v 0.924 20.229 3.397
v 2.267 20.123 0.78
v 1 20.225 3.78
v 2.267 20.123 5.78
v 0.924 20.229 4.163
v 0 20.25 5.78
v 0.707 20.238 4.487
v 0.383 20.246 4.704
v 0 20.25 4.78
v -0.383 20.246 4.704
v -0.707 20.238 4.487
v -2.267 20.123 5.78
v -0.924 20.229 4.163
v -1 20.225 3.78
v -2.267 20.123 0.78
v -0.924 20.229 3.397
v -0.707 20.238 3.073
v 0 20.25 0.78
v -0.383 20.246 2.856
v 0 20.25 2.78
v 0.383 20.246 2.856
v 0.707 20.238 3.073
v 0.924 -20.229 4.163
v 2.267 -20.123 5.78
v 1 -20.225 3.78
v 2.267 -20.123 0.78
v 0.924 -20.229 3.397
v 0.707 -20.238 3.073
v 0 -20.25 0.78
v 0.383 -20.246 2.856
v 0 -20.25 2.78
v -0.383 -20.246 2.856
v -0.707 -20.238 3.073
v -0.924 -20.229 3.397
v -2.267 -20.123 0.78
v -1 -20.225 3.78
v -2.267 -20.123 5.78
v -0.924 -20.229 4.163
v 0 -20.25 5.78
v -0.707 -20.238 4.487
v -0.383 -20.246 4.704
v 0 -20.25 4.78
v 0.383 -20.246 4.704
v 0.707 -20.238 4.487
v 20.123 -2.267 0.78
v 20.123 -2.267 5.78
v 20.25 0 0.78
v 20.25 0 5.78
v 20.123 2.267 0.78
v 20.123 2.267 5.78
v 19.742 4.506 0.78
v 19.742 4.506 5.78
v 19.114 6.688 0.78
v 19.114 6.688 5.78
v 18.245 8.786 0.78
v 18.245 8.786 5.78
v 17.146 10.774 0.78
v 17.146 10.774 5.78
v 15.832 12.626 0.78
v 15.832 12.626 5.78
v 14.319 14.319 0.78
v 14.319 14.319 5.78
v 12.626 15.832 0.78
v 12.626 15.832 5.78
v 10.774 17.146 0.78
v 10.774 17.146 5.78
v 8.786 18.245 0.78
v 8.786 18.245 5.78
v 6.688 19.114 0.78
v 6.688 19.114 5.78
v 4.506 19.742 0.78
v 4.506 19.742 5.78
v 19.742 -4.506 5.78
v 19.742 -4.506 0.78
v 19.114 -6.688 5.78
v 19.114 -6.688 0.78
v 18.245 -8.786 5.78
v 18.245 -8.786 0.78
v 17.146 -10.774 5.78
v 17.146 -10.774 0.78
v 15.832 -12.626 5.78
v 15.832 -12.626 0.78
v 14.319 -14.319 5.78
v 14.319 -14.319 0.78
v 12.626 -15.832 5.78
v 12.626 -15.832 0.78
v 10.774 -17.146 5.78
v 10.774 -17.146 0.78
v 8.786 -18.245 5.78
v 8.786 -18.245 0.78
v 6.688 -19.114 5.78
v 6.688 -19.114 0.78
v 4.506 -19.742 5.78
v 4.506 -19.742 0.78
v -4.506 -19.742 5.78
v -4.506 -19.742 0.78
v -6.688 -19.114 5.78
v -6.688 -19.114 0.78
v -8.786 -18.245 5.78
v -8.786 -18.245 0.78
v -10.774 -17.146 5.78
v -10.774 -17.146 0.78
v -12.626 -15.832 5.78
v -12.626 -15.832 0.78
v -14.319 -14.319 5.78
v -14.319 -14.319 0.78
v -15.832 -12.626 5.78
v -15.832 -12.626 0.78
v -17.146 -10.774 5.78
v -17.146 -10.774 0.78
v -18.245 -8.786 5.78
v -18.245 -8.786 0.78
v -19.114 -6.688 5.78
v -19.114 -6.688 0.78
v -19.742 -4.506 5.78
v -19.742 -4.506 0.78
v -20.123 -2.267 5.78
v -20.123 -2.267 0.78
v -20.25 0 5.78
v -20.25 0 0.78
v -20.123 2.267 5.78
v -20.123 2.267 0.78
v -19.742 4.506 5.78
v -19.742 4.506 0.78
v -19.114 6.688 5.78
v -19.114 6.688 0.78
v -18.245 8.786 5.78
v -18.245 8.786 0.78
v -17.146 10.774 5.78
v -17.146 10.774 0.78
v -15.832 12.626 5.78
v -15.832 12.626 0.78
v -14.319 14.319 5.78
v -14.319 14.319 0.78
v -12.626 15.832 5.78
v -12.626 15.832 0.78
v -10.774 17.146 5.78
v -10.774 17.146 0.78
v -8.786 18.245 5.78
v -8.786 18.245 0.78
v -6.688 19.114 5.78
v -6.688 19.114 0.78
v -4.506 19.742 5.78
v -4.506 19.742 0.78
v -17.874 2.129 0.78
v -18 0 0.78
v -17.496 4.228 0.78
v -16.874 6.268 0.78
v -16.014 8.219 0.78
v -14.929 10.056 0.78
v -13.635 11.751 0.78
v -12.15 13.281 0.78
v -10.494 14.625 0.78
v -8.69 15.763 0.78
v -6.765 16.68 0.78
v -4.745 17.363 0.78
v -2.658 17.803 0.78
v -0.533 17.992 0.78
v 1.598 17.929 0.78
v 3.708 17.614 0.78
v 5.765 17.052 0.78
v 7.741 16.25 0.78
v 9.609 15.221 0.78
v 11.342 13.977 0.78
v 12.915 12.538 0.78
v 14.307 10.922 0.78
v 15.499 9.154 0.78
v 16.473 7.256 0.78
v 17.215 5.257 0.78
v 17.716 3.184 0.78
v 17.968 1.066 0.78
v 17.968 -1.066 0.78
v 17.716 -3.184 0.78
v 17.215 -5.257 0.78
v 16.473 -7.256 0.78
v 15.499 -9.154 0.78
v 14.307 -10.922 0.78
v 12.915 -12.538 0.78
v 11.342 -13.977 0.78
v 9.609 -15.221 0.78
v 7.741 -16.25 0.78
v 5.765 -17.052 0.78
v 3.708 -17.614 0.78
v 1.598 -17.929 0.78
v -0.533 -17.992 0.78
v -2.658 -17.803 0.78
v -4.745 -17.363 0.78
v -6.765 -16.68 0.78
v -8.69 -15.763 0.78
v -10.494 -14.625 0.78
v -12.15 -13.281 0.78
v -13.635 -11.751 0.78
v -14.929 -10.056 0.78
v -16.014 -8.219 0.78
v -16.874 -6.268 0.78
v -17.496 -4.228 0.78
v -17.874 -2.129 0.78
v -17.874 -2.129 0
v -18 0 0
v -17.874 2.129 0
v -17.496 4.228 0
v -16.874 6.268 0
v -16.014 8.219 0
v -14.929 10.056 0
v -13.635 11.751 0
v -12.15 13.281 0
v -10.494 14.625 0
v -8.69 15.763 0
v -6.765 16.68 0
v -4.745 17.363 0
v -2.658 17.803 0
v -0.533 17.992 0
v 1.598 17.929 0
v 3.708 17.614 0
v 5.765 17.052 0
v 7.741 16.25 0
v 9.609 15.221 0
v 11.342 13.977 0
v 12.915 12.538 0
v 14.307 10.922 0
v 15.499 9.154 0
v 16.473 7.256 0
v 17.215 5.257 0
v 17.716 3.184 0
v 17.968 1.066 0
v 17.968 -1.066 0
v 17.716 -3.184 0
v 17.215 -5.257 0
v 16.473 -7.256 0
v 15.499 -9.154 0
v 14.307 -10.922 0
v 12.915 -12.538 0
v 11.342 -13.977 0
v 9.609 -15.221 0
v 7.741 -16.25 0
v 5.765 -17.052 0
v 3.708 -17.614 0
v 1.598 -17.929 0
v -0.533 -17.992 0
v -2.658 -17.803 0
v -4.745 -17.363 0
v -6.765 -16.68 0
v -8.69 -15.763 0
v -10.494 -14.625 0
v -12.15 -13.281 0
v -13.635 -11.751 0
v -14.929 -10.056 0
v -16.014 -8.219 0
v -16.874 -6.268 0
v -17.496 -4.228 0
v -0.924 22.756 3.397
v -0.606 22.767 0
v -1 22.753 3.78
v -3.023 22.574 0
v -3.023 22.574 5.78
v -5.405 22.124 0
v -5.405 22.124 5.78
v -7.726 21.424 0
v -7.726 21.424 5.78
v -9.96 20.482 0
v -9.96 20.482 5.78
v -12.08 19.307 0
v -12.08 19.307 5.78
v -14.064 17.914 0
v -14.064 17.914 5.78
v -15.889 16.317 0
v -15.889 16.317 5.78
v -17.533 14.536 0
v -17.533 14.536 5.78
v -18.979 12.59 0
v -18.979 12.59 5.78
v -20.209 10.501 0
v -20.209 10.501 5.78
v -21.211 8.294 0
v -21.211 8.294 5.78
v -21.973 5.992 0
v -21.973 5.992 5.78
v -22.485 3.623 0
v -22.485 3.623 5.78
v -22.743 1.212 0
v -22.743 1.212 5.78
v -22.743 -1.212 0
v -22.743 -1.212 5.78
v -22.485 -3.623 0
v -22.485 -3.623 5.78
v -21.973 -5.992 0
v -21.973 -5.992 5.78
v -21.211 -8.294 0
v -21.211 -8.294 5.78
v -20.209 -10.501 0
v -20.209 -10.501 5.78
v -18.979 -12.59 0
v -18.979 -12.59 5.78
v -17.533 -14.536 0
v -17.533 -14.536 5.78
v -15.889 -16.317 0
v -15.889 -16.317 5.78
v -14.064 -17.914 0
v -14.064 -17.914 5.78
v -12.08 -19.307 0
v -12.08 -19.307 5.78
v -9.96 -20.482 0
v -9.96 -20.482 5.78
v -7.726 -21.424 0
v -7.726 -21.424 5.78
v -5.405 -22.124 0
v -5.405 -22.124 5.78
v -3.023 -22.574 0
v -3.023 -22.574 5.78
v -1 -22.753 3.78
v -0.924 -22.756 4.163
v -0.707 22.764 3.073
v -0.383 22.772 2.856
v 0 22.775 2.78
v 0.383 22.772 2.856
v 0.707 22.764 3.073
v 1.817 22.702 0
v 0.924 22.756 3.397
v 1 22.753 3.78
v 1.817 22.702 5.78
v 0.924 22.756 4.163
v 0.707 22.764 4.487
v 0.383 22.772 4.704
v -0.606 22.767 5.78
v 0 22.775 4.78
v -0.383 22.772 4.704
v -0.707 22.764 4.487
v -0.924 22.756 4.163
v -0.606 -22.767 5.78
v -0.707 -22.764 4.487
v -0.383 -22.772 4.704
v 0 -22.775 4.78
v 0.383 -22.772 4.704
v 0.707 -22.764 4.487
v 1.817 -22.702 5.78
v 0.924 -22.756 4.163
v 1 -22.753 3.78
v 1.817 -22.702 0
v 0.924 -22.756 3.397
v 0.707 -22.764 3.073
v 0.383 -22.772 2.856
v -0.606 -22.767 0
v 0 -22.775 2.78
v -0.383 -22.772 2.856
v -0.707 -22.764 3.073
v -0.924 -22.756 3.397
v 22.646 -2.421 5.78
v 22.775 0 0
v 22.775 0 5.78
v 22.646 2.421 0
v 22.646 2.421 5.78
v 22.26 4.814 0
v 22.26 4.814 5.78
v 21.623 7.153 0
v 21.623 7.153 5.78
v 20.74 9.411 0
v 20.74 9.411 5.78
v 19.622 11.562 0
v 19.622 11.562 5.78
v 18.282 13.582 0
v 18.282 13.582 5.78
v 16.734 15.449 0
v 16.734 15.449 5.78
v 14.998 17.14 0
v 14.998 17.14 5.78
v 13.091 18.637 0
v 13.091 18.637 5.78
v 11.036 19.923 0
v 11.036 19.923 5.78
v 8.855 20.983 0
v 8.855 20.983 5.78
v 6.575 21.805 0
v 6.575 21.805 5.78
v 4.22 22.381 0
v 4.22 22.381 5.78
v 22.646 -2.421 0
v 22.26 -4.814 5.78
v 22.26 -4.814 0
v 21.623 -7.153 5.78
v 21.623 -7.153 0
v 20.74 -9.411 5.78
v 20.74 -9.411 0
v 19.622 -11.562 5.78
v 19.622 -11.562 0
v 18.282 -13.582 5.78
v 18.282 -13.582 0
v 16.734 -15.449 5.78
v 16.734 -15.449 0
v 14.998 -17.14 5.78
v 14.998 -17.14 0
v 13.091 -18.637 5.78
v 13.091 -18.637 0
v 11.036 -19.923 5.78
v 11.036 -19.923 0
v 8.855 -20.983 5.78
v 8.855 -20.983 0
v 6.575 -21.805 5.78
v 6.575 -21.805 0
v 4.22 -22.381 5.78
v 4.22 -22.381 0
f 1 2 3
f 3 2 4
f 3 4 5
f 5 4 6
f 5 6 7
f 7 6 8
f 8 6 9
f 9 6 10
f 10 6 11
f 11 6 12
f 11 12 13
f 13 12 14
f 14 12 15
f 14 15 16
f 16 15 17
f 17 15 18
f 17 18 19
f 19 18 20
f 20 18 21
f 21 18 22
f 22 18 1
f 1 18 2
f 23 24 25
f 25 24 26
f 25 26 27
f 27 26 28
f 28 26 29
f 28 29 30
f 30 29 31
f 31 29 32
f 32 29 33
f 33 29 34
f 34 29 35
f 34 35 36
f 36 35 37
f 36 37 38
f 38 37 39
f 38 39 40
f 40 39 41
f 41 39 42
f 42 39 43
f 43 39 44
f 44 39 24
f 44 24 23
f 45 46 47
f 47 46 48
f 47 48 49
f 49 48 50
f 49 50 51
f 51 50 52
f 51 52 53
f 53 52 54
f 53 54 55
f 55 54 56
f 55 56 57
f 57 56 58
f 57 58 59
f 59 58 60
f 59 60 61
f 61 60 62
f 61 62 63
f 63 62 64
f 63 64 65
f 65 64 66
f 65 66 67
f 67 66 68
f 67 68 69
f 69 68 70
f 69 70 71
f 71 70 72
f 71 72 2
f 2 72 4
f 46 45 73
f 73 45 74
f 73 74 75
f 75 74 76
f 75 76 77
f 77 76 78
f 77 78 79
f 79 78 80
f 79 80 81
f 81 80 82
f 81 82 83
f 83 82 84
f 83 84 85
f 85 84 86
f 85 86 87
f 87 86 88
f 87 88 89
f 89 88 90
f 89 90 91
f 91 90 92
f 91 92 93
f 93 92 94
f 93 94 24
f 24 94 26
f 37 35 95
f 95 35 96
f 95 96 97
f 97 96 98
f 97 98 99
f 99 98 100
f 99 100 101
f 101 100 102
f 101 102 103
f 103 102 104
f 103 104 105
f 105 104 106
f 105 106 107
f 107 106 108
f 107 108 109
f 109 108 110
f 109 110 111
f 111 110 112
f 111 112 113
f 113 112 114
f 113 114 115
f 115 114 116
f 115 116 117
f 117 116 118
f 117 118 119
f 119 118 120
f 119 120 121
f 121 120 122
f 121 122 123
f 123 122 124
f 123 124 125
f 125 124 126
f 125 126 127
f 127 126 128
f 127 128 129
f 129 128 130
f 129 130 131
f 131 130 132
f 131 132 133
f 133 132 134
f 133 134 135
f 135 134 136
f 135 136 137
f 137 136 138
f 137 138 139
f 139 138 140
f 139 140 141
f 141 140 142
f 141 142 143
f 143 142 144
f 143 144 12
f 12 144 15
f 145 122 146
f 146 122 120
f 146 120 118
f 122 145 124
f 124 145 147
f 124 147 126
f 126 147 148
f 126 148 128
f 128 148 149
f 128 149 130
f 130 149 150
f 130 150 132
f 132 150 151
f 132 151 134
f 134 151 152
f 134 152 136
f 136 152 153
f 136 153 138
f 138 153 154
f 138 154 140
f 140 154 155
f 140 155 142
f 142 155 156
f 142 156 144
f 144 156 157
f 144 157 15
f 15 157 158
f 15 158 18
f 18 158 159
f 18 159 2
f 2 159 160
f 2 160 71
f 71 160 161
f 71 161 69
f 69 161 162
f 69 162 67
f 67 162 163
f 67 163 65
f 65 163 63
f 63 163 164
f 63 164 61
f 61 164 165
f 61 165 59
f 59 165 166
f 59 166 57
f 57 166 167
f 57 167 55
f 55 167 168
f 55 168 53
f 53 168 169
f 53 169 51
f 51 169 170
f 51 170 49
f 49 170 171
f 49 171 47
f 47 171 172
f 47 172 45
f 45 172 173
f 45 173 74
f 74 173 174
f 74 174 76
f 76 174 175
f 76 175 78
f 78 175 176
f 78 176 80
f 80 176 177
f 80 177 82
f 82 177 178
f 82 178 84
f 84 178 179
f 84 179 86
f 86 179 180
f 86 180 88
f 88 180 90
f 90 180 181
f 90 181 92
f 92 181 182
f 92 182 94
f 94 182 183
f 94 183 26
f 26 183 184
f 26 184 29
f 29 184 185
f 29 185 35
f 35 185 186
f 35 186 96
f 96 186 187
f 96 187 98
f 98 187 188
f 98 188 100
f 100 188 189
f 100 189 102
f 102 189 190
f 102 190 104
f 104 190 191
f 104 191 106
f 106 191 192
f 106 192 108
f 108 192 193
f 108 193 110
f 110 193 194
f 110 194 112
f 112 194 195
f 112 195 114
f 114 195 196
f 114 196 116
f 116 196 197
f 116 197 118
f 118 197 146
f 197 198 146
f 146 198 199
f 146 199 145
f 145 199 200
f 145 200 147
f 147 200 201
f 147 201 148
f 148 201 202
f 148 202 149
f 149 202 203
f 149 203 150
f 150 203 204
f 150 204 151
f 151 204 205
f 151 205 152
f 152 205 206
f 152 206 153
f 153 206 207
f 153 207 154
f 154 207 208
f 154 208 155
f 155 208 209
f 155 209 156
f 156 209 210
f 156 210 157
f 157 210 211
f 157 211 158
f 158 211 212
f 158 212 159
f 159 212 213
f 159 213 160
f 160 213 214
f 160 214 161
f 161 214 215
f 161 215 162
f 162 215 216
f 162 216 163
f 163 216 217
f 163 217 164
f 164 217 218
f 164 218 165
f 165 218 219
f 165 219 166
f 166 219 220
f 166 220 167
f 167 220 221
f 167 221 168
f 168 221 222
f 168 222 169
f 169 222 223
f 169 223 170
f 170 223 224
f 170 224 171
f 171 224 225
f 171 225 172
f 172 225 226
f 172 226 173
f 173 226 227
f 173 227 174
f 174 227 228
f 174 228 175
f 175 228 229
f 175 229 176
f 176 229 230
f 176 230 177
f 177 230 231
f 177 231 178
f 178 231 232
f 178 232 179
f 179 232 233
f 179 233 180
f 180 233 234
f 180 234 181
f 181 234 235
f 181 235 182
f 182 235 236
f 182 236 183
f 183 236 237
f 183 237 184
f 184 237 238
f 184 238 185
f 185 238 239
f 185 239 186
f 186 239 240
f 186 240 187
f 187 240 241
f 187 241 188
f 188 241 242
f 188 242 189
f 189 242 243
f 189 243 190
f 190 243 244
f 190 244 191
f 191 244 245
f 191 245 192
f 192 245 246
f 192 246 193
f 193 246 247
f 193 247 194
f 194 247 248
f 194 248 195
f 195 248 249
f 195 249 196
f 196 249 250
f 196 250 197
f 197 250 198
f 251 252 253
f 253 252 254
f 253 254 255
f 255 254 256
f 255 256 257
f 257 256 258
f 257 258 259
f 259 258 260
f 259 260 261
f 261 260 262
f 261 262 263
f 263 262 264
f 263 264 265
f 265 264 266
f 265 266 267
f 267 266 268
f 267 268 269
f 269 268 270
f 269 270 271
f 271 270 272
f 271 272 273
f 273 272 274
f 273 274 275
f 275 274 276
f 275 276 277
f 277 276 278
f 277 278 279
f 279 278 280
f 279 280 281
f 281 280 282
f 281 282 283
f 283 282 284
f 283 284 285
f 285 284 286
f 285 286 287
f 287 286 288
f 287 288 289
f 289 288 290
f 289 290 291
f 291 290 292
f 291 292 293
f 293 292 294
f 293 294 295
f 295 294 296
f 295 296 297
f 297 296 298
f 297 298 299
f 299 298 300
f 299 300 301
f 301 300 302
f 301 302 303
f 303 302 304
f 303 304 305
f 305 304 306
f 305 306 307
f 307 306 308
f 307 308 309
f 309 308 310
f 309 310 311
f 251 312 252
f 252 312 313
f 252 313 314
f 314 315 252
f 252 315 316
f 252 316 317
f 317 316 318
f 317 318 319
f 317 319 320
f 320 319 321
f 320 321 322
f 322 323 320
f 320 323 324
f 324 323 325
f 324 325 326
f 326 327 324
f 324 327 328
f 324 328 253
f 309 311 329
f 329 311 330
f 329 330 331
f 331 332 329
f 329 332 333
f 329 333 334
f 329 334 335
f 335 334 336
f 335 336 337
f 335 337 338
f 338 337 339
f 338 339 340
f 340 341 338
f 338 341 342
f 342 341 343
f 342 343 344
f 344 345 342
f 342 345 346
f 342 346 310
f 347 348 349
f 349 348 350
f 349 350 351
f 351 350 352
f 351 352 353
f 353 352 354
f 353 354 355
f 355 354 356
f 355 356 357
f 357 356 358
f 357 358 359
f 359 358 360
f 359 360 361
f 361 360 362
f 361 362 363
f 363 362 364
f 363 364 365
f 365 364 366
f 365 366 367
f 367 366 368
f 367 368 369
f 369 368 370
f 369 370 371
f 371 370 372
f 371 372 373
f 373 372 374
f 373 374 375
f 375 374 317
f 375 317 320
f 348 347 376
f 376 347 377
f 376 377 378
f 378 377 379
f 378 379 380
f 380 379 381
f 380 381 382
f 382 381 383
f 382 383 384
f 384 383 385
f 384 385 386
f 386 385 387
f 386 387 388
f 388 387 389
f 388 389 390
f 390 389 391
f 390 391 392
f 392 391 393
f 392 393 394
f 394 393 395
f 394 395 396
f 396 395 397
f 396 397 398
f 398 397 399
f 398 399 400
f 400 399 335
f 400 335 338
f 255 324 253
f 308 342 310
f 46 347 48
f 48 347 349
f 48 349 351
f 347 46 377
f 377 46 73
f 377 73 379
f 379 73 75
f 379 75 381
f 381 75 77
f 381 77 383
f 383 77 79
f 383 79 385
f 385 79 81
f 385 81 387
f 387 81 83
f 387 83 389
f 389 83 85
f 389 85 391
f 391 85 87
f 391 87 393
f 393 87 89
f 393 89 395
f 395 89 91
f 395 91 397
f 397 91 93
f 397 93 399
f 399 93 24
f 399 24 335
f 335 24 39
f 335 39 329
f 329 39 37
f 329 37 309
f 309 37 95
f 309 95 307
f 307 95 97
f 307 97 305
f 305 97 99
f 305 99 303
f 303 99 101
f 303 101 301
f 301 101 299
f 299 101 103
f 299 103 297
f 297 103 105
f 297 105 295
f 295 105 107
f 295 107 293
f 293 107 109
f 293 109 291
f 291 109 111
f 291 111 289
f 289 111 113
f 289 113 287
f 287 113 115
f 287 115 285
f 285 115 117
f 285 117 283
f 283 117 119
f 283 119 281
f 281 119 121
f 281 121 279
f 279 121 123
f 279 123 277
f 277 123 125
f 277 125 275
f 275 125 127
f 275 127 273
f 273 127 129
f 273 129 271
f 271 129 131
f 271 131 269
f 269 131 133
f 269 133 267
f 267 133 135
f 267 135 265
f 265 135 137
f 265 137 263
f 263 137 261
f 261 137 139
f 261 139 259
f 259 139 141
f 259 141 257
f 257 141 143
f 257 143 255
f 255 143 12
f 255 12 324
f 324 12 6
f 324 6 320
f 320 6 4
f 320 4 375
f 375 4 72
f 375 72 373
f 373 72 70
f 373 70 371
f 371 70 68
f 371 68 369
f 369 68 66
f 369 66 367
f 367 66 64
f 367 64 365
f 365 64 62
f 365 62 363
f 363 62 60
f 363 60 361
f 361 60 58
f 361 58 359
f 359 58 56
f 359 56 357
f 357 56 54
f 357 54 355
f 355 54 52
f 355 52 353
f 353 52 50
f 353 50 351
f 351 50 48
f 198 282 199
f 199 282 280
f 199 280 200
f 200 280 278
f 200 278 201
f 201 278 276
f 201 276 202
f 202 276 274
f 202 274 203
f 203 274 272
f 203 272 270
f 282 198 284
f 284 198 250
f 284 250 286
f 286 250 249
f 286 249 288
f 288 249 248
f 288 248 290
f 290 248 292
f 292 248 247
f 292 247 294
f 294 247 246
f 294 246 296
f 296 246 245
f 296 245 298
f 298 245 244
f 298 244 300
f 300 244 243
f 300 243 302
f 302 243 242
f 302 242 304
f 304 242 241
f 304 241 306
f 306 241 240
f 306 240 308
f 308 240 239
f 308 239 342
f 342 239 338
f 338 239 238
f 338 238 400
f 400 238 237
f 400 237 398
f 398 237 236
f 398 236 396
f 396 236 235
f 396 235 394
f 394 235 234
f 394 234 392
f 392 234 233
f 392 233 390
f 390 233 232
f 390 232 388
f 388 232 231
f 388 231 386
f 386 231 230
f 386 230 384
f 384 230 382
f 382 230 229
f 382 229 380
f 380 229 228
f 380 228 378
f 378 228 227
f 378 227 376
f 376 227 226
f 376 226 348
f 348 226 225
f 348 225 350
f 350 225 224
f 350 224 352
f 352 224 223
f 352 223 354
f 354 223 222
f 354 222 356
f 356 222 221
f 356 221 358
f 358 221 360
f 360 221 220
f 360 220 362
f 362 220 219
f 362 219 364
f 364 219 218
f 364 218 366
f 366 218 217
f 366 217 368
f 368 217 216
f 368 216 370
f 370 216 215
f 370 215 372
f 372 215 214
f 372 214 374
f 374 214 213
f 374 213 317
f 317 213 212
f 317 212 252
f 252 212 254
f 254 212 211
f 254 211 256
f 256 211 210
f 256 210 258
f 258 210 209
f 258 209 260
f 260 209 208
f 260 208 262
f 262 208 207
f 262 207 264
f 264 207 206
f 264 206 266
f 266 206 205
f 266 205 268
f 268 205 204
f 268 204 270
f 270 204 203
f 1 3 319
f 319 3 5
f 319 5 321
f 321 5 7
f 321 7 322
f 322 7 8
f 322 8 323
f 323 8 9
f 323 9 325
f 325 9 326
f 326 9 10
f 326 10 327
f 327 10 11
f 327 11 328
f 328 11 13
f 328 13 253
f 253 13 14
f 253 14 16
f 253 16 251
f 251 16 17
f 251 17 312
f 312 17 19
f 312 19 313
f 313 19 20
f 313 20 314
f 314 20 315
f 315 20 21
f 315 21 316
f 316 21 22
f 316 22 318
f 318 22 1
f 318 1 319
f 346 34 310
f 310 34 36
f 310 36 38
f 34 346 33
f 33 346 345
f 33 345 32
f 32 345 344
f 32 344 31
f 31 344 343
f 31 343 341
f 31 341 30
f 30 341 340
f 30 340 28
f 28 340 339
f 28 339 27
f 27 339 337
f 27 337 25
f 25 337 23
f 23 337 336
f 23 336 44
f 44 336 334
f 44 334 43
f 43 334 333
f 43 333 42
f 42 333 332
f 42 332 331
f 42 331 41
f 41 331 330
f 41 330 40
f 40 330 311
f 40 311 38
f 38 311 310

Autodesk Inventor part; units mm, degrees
ref_plane "YZ Plane" through (0, 0, 0) normal (1, 0, 0) x (0, 1, 0)
ref_plane "XZ Plane" through (0, 0, 0) normal (0, 1, 0) x (-1, 0, 0)
ref_plane "XY Plane" through (0, 0, 0) normal (0, 0, 1) x (1, 0, 0)
sketch "Sketch1" plane through (0, 0, 0) normal (0, 0, 1) x (1, 0, 0)
  circle A0 centre (0, 0) radius 22.775
  dimension "d0" = 45.55
extrude "Extrusion1" add sketch "Sketch1" along normal blind 5.78
sketch "Sketch2" plane through (0, 0, 5.78) normal (0, 0, 1) x (1, 0, 0)
  circle A0 centre (0, 0) radius 18
  dimension "d3" = 36
extrude "Through-hole" cut sketch "Sketch2" against normal blind 548
sketch "Sketch3" plane through (0, 0, 5.78) normal (0, 0, 1) x (1, 0, 0)
  circle A0 centre (0, 0) radius 20.25
  dimension "d6" = 40.5
extrude "snug ring fit" cut sketch "Sketch3" against normal blind 5
sketch "Sketch4" plane through (0, 0, 0) normal (0, 1, 0) x (-1, 0, 0)
  line L0 (22.775, 5.78) -> (-22.775, 5.78) projected
  line L1 (0, 5.78) -> (0, 3.78)
  circle A0 centre (0, 3.78) radius 1
  point P0 (0, 0)
  dimension "d9" = 2
  dimension "d10" = 2
extrude "Extrusion4" cut sketch "Sketch4" along normal mid plane 548
properties part number "Diaphragm_lock"
